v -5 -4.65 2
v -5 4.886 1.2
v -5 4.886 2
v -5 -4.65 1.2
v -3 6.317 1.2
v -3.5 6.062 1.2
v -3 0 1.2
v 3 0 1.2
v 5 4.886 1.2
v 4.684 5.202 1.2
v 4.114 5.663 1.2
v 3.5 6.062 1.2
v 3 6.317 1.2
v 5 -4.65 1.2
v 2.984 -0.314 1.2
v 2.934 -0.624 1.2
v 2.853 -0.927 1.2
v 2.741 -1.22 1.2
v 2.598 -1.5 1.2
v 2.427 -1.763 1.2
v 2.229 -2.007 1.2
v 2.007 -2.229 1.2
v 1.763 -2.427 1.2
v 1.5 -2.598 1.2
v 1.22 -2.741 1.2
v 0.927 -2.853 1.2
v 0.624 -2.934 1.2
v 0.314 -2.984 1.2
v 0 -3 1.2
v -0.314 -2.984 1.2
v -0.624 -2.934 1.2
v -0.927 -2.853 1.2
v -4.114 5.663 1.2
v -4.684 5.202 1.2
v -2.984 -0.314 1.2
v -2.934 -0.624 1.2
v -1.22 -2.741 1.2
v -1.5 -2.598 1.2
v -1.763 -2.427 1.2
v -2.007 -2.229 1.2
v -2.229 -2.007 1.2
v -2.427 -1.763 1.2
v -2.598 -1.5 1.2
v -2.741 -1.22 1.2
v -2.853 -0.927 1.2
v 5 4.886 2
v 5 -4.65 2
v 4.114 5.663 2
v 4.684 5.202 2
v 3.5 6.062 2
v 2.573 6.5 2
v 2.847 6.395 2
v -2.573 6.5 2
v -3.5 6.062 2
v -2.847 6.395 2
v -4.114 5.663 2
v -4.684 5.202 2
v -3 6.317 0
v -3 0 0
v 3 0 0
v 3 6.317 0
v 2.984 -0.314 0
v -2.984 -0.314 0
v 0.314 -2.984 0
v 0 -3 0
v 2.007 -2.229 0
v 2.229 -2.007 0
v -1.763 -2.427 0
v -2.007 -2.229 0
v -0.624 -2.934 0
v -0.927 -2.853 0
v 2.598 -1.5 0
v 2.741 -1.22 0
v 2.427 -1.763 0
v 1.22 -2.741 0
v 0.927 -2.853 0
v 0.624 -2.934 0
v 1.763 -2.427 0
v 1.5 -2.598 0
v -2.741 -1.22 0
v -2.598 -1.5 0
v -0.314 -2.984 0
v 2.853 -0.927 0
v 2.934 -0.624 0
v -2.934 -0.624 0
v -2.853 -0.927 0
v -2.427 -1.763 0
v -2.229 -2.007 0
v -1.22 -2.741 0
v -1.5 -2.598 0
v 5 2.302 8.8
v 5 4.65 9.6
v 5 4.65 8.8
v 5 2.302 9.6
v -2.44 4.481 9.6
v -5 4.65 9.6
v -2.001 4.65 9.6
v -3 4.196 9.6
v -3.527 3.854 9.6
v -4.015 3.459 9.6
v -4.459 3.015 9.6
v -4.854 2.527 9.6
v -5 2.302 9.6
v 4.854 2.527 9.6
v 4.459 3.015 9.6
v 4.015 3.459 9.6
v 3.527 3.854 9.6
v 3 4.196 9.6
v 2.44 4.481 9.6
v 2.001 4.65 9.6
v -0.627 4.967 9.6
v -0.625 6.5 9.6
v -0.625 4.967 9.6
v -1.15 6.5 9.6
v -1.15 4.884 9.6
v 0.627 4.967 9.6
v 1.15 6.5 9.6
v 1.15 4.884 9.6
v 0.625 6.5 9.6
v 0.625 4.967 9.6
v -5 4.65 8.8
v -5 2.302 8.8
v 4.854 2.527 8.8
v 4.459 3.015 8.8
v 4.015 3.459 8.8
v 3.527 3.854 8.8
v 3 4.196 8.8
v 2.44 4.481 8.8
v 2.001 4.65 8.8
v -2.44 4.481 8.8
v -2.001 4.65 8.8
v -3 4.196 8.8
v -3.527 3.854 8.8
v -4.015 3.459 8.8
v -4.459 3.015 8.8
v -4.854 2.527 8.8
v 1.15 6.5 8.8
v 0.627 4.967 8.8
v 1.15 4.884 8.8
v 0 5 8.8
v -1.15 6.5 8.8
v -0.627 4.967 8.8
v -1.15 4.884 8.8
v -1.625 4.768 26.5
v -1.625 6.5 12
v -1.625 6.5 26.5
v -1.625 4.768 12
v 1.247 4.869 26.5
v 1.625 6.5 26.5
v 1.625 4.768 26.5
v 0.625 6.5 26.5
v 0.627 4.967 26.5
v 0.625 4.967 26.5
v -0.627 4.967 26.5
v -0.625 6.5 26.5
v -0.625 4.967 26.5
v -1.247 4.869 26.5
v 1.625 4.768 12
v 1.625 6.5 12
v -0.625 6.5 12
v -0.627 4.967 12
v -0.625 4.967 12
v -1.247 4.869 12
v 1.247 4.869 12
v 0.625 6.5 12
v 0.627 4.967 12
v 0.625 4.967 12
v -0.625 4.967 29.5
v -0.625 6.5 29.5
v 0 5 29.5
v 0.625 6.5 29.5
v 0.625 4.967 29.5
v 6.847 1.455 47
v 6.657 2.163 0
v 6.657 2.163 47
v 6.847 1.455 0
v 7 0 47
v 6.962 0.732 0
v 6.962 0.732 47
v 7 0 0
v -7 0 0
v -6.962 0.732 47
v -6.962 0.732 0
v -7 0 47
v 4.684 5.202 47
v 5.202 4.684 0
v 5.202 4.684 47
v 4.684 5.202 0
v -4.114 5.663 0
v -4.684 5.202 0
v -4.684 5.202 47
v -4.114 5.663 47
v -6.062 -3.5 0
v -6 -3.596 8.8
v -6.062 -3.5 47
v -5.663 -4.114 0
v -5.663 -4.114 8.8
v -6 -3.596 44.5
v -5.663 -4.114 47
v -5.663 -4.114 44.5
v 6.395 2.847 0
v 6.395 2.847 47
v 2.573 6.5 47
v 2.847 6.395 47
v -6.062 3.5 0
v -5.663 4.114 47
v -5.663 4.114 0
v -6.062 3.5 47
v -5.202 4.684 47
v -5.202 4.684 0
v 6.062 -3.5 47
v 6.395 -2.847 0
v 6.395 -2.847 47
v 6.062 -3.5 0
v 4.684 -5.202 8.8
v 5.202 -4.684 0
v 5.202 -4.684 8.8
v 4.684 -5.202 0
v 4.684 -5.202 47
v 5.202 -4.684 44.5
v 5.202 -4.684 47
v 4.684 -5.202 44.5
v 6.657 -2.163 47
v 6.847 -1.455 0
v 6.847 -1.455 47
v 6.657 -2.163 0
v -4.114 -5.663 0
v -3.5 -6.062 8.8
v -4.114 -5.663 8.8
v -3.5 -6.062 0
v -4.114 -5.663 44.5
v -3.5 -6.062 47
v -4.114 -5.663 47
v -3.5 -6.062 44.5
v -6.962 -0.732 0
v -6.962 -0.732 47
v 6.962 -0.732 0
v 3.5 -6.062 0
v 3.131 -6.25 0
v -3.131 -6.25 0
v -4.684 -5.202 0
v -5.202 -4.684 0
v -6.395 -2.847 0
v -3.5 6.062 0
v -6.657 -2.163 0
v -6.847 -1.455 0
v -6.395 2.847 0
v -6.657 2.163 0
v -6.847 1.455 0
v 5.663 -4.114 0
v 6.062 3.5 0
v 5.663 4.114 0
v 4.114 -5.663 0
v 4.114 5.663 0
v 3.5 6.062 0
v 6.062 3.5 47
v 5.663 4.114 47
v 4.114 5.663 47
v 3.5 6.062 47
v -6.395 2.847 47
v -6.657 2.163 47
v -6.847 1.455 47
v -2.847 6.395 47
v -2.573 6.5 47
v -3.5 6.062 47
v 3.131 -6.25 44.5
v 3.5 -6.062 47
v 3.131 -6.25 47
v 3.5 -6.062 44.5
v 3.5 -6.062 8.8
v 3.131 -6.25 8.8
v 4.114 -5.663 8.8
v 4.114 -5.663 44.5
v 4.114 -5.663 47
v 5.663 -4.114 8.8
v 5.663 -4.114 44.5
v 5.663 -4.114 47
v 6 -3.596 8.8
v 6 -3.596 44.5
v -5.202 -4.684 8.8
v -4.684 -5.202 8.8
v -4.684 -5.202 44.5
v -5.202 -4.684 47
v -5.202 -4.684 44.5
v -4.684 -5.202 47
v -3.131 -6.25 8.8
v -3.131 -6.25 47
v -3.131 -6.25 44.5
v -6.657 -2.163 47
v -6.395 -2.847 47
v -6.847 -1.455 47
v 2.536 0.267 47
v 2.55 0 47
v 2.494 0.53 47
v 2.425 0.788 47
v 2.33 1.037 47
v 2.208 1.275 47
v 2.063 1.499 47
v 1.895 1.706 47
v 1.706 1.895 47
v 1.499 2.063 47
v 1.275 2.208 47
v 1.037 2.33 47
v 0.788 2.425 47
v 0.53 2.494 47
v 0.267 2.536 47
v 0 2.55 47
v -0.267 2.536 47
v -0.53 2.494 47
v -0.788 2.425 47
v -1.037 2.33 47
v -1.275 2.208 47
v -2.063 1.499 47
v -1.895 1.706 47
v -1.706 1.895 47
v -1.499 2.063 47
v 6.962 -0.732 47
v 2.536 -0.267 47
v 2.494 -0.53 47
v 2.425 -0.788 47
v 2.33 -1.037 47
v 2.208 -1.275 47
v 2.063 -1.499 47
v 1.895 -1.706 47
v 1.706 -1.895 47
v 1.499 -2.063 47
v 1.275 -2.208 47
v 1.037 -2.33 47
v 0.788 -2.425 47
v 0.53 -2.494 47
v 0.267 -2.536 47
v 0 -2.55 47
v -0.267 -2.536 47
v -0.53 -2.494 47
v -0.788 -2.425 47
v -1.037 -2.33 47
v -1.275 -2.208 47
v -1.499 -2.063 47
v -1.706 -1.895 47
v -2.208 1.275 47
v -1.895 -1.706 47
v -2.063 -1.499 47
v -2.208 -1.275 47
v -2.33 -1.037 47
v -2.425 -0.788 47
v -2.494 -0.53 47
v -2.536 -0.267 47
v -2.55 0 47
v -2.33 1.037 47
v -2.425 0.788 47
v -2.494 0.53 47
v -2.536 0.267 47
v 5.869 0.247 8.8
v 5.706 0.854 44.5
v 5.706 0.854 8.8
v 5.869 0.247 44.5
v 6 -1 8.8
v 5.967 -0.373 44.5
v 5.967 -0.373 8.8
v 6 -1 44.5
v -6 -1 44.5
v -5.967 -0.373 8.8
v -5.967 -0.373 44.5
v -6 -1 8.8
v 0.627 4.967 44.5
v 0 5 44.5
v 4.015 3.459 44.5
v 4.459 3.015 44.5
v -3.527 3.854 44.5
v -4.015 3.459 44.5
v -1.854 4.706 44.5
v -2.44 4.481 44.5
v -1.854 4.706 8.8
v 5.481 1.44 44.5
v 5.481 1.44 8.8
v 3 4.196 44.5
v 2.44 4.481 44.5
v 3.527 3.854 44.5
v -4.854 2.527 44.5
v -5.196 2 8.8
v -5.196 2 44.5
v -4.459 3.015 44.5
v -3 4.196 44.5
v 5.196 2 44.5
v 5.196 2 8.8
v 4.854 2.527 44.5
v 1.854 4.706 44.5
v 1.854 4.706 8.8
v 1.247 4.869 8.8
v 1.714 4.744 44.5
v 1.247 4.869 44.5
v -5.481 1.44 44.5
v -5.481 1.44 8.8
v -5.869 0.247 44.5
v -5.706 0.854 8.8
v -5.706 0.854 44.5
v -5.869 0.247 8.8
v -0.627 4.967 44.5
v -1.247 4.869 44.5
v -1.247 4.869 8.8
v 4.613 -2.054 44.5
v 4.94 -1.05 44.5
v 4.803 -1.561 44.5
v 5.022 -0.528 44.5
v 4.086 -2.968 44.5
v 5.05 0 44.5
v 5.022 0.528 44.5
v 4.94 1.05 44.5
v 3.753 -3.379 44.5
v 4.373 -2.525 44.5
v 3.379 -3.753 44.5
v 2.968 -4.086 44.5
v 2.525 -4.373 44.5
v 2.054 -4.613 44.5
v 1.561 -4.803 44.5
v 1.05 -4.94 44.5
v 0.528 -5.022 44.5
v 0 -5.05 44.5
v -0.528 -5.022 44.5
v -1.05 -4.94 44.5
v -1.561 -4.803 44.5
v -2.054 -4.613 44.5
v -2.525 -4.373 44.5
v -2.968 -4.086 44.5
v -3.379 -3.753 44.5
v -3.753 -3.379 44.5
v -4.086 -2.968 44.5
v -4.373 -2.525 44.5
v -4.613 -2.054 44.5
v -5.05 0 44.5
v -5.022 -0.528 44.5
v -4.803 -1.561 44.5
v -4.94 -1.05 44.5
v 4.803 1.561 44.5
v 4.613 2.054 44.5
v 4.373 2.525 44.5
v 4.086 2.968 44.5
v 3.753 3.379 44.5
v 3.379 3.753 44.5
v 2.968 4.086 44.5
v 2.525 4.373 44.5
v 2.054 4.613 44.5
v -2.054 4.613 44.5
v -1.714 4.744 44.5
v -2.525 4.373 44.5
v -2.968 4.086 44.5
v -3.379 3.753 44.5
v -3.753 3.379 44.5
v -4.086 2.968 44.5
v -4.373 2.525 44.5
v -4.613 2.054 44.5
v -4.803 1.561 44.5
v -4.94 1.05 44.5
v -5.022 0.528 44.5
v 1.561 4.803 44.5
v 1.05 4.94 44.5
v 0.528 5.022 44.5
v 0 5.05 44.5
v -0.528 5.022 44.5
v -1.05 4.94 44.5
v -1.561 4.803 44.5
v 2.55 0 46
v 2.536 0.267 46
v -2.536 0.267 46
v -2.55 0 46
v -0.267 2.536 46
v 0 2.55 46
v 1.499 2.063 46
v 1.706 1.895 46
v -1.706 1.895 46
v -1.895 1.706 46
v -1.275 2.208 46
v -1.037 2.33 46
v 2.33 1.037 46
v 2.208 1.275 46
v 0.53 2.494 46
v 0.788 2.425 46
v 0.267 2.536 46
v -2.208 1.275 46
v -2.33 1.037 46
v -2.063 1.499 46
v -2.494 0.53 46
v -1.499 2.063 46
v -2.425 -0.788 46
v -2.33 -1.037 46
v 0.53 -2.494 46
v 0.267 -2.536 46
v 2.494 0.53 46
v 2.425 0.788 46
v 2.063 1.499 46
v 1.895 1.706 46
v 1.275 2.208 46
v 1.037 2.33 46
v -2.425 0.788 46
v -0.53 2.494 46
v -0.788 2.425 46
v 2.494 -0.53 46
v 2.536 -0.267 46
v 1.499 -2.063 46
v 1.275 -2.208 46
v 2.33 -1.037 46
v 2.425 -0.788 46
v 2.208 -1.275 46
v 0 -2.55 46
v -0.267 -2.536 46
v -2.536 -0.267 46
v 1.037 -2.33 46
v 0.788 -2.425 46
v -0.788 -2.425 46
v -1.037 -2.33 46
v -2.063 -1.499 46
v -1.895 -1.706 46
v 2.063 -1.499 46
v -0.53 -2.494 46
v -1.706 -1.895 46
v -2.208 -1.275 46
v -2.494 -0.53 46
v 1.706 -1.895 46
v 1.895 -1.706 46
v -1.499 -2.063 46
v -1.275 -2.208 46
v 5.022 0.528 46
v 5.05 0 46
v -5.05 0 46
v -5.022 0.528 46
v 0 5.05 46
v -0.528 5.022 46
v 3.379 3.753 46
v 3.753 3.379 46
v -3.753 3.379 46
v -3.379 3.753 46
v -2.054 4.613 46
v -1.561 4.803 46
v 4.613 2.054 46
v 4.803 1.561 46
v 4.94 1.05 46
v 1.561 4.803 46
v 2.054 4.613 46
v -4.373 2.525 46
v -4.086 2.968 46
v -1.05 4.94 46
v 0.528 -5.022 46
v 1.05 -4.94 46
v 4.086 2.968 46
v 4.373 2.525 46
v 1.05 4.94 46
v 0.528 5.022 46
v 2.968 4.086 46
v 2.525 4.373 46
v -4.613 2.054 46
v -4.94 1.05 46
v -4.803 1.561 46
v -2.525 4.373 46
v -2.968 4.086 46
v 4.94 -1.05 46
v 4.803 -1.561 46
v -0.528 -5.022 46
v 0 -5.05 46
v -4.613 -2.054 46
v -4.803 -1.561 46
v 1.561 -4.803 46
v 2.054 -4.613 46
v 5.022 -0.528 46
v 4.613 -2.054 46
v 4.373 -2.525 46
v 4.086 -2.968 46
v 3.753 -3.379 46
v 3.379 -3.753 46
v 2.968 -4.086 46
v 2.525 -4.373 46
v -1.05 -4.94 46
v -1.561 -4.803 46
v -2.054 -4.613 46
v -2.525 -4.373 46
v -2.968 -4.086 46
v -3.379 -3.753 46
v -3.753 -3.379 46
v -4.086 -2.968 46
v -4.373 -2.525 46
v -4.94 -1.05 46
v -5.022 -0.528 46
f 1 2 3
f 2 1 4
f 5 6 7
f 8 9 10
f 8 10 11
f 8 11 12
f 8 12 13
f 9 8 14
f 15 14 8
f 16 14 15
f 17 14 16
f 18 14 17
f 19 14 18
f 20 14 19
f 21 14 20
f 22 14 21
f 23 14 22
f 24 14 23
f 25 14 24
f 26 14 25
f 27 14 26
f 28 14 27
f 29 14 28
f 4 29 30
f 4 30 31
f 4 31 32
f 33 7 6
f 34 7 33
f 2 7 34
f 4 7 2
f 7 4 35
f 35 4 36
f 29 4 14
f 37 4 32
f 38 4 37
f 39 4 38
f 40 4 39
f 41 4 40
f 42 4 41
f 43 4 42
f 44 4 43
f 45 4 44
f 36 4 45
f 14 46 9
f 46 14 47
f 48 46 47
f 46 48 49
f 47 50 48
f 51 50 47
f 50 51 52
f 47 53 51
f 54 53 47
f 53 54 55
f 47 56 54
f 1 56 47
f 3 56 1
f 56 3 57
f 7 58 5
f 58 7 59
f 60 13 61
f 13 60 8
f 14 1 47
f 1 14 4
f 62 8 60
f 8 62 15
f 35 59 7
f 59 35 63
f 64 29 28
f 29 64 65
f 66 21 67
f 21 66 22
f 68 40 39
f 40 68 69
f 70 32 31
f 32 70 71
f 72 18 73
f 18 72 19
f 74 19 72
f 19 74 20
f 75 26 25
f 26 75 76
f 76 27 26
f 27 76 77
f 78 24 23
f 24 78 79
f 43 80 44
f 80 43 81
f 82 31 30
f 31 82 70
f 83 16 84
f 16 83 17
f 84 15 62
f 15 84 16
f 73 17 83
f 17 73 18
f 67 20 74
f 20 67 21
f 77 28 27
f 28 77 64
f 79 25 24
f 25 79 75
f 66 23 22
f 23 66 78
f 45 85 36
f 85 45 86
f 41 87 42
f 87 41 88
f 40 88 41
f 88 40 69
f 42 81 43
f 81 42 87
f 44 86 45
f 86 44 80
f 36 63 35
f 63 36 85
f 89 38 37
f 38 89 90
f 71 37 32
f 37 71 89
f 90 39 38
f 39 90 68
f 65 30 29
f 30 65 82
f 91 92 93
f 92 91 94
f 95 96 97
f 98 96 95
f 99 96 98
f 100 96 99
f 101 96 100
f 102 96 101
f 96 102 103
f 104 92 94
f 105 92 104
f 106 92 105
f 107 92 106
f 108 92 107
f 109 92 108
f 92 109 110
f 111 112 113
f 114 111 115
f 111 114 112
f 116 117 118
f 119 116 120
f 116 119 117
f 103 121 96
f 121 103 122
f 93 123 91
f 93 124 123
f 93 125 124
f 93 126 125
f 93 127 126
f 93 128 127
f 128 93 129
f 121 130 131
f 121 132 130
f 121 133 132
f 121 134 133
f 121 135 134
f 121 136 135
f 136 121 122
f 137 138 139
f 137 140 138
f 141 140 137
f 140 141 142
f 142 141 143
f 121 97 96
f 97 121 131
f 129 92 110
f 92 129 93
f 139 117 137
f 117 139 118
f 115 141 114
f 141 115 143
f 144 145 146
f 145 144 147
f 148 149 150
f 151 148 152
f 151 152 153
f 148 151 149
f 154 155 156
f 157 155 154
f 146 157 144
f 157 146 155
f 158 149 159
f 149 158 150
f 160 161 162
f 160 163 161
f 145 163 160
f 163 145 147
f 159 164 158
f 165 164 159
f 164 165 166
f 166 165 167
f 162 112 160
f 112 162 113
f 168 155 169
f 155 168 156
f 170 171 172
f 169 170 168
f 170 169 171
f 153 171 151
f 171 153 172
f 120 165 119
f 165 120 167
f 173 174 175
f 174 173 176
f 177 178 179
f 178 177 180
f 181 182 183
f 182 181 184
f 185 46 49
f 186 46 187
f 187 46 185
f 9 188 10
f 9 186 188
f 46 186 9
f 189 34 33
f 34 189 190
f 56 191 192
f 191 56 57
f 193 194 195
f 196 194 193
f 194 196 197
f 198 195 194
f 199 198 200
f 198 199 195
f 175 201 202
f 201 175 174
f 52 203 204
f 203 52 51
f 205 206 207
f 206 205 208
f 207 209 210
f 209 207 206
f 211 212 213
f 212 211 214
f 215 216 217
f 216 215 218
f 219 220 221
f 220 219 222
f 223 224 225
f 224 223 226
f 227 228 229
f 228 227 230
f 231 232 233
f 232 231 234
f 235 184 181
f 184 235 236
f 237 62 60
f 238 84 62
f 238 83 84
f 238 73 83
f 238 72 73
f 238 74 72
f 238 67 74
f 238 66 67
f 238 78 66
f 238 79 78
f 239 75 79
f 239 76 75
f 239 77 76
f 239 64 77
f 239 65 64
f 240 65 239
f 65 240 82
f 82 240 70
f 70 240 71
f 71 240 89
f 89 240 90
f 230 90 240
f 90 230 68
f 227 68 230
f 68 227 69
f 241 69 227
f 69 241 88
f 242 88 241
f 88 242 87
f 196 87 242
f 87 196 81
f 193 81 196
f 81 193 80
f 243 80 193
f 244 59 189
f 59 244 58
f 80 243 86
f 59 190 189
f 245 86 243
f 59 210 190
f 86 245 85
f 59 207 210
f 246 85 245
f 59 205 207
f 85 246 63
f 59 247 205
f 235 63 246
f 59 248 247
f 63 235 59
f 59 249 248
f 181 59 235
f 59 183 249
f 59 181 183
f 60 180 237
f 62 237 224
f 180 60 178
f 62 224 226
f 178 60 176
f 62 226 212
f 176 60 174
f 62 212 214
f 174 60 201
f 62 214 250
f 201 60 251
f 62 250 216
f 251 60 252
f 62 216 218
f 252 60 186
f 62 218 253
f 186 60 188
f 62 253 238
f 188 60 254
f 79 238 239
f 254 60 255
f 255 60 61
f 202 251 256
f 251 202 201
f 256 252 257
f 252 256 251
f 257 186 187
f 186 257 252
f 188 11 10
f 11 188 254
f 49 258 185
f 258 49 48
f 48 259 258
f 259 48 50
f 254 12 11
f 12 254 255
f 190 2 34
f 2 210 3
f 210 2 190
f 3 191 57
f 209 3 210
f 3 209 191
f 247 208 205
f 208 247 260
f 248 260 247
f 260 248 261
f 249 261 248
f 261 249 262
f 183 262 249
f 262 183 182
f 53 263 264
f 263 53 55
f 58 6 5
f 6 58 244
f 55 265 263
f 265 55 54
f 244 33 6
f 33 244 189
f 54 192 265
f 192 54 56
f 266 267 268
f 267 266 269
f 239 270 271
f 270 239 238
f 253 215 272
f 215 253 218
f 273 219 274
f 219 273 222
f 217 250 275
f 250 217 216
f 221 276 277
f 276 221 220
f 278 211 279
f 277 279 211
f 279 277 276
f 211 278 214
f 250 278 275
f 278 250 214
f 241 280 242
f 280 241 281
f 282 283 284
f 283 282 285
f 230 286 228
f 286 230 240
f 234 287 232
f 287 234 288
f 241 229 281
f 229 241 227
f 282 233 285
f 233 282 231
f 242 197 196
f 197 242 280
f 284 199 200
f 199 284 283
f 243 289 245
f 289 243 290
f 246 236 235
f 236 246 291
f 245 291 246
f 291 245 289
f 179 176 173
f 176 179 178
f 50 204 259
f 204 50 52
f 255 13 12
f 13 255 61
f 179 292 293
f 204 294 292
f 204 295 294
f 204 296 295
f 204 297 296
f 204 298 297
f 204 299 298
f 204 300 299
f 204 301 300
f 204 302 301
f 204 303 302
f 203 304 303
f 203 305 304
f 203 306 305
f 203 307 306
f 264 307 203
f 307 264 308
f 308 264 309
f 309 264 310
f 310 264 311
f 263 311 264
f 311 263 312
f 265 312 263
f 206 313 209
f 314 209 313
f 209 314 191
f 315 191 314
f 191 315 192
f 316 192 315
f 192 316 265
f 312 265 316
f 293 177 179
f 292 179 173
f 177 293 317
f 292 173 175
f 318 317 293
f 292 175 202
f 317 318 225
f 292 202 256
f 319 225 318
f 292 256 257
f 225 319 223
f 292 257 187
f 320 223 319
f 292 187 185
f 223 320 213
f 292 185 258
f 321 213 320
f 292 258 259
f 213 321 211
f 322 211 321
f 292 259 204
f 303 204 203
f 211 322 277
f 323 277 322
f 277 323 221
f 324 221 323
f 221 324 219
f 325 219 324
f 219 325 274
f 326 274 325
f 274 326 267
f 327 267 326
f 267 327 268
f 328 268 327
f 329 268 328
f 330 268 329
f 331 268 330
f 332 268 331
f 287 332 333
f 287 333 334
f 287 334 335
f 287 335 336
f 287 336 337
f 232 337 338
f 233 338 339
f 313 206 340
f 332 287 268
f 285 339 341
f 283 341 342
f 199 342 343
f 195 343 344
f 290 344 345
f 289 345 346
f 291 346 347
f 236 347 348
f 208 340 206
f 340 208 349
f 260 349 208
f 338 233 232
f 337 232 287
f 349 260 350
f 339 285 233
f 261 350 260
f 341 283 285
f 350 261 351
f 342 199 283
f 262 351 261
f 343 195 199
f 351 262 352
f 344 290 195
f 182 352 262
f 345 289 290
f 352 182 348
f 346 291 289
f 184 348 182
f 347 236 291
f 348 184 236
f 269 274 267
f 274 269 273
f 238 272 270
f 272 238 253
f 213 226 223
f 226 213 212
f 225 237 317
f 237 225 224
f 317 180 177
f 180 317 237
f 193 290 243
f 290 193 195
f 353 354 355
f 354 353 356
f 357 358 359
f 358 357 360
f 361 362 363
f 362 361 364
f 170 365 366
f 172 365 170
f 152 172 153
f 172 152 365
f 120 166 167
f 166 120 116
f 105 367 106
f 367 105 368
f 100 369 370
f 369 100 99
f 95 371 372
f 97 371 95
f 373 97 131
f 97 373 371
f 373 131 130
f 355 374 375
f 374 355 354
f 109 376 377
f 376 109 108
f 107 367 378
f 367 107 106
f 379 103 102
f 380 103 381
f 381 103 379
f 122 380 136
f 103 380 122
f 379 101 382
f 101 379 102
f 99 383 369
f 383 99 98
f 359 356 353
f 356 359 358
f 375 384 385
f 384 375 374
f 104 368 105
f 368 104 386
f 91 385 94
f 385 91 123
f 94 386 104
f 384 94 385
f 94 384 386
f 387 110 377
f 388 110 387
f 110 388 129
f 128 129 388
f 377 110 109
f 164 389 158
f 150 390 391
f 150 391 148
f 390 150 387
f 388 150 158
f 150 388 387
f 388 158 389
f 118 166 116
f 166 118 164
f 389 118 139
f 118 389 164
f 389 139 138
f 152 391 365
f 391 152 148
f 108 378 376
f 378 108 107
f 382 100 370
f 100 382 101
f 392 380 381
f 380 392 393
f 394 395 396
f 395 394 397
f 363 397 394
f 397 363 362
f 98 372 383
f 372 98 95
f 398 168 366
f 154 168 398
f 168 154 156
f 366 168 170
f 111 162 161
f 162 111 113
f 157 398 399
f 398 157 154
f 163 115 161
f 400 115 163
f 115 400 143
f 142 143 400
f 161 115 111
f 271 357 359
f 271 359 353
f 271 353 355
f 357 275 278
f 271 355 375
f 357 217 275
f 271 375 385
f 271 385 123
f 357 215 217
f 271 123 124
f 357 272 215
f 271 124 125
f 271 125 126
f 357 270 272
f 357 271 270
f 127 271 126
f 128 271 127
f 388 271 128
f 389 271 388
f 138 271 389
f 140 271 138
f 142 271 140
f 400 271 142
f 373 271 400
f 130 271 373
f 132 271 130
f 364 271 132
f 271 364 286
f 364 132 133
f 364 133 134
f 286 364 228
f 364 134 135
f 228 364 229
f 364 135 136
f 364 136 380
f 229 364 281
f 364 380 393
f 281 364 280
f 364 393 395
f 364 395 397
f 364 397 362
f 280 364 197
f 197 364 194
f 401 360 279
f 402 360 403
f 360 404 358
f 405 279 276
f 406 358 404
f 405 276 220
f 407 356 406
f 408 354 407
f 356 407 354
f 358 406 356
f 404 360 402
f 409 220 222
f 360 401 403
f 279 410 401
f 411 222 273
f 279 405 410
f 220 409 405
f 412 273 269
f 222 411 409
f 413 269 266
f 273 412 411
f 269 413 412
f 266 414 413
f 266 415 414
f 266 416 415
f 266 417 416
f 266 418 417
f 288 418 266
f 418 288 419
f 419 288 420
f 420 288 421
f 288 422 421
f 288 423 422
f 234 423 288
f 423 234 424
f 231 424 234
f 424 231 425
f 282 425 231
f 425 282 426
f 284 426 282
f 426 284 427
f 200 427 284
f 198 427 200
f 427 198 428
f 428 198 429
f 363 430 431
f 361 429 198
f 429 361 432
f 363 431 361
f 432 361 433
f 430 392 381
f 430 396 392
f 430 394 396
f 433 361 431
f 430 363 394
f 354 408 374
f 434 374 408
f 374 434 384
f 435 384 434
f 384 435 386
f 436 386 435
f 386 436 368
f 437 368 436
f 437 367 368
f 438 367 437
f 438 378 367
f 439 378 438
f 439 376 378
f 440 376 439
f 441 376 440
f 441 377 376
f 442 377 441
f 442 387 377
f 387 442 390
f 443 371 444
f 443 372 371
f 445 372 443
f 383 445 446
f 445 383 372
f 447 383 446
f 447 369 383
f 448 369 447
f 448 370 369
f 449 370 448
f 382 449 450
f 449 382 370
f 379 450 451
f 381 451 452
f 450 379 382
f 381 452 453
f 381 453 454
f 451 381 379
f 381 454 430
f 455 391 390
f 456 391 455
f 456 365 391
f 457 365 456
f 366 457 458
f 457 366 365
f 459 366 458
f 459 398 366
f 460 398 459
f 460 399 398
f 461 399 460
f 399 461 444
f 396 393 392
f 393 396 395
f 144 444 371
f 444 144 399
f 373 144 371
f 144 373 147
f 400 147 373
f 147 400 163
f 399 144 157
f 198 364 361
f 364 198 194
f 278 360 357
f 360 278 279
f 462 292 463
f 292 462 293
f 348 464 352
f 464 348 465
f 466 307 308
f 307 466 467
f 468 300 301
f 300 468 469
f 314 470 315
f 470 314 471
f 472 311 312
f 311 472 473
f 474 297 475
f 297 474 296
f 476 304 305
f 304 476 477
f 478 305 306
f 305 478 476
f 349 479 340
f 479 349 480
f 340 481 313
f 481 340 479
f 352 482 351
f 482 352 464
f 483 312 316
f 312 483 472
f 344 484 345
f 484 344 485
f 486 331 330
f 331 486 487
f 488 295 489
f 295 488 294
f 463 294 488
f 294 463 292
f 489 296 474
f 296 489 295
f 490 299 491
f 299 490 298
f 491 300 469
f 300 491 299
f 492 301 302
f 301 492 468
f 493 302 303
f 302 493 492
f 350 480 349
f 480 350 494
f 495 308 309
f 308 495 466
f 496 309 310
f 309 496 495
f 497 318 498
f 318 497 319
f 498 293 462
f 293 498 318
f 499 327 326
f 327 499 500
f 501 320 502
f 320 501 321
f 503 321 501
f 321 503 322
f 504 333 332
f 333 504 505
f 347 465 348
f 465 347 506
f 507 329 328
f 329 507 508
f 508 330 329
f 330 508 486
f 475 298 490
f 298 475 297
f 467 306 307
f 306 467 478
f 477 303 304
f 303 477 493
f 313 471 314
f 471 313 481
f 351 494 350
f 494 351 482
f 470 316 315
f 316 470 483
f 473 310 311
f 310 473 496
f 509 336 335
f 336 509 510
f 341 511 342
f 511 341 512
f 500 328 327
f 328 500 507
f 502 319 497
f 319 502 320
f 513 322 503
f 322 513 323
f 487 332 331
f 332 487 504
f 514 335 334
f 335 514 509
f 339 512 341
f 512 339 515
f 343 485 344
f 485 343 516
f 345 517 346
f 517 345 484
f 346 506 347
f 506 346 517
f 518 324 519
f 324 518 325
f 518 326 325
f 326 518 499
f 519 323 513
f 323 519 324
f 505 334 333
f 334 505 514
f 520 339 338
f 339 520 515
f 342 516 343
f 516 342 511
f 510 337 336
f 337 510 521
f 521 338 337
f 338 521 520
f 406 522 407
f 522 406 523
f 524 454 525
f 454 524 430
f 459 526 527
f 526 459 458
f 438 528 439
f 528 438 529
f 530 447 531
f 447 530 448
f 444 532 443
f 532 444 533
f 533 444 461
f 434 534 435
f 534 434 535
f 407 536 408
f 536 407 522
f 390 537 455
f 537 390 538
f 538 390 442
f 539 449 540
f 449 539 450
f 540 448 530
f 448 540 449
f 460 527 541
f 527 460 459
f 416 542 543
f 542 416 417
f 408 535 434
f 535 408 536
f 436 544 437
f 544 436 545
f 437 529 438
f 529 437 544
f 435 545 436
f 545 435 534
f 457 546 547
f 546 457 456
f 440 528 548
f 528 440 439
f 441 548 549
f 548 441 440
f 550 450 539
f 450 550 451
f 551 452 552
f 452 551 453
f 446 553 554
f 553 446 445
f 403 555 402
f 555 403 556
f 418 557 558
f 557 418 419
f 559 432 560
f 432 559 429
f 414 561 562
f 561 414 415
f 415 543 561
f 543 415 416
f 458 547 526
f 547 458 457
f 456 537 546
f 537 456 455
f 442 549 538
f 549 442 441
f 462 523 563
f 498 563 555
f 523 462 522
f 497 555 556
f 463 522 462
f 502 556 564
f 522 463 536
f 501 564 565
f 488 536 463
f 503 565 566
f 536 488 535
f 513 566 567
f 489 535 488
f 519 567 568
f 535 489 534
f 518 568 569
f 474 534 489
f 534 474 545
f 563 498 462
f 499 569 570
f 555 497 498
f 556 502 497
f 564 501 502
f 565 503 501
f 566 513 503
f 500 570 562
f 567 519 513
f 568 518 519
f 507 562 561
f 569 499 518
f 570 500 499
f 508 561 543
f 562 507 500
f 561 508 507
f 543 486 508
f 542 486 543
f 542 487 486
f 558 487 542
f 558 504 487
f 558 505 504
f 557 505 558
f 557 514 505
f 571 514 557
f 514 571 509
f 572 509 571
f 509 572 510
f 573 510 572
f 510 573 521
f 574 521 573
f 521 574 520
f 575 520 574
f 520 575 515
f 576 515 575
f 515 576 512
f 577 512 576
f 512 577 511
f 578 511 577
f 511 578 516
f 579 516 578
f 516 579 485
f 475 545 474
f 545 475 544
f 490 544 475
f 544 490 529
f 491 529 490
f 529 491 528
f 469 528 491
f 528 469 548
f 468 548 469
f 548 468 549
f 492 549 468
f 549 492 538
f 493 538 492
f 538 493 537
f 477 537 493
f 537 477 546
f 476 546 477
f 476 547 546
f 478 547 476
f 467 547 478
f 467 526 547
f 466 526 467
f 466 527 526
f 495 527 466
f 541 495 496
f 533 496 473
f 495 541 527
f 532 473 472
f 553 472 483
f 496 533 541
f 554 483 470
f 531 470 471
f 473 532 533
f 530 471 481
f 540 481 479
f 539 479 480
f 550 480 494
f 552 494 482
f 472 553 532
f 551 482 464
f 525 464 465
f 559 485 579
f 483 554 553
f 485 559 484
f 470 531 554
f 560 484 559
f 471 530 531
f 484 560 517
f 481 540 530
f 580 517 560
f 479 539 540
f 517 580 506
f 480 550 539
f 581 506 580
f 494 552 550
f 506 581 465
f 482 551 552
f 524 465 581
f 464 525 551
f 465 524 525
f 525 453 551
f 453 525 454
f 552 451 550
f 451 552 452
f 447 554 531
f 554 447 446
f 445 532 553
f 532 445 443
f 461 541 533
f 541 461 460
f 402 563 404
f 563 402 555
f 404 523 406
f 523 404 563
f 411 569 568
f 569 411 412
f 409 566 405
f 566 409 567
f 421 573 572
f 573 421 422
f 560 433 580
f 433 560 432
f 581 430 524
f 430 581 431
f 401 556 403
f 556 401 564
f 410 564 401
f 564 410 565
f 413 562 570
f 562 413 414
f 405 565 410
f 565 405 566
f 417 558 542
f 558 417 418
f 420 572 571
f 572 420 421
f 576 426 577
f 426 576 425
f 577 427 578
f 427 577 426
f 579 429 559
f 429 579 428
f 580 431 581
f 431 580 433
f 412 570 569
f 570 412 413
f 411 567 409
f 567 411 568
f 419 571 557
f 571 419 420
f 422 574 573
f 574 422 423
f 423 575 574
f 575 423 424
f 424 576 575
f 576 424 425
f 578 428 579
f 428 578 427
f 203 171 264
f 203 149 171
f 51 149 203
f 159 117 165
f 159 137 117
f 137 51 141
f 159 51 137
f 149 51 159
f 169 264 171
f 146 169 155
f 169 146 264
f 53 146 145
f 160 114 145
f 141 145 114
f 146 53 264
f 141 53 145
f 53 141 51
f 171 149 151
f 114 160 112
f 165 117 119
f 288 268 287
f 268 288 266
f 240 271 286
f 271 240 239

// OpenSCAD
include <BOSL/constants.scad>
use <BOSL/shapes.scad>
use <BOSL/transforms.scad>

compressedSpring = 5.5;

//positive terminal minimum 1.0mm (included in height) -- max 5.5mm
//negative terminal minimum diameter 7mm
hAA=49-2;
dAA=14;

//positive terminal minimum XXXmm (included in height) -- max XX
//negative terminal minimum diamter XXmm
hN=30.2+compressedSpring;
dN=12;

//Metal Battery Spring Terminals
//additions are for "wiggle room"
slotWidthX = 9.7 + 0.3;
slotDepthY=9.0 + 0.3;
slotThicknessZ=0.40*2; // metal tab only -- multiplier gives wiggle room
tabWidthX=2.3;
tabDepthY=6.0;
tabOffset=0; // in degrees 

//Plastic Reed Switch
reedL = 14.5;
reedW = 3.25;
reedH = 3.14;

topThickness = 2.5;
shiftForward=1;


//General variables
$fn=60; //circle smoothness
overlap = 1.00; // overlap ensures that subtractions go beyond the edges

difference() {

  //Overall shape (of a AA battery)
  AA();

  //Battery Cutout
  forward(shiftForward) up(hAA-hN-topThickness) #N();
  forward(shiftForward) up(hAA-hN-topThickness) forward(dN/2) Nopening();

  //Positive Pole (Chicago Screw)
  up(hAA-topThickness) color("green") cyl(d=5.1, h=4, align=V_UP); 
  up(hAA-topThickness) color("lime") cyl(d=10.1, h=1.5, align=V_UP);

  //spring insert for negative pole of battery
  up(hAA-hN-topThickness) zrot(180-tabOffset) slot();
  
  //Bottom tab (negative)
  up(2) zrot(tabOffset) xrot(180) slot();  
  up(2) zrot(tabOffset) xrot(180) slotopening();  
  
  //Flatten holder
  back((dAA/2)+0.5) color("gray") cuboid([dAA, 2, hAA], align=V_UP); //flatten back
  forward((dAA/2)+0.25) color("gray") cuboid([dAA, 2, hAA], align=V_UP); //flatten front
  
  
  //Reed switch
  up(12) back((dAA/2)-(reedH/2)-0)  #reed();
  
}
  
 //preview just the slot
 //up(hAA+10)   slot();


//----------------------------------------------------------------------------------------

module AA() { color("orange") cyl(d=dAA, h=hAA, align=V_UP); }
module N() { color("gold") cyl(d=dN, h=hN, align=V_UP); }
module Nopening() { color("khaki") cuboid([dN, dN , hN], align=V_UP); }

//----------------------------------------------------------------------------------------

module reed() { 
  color("slategray") cuboid([reedW, reedH, reedL], align=V_UP);
  down(3) color("lightgray") cuboid([1.25, reedH, reedL+3+3], align=V_UP);
}

//----------------------------------------------------------------------------------------

module slot() { 
  color("magenta") cuboid([slotWidthX, slotDepthY, slotThicknessZ], align=V_UP);
  color("deeppink") cyl(d=6, h=slotThicknessZ+1.6, align=V_UP);
  forward((slotDepthY/2)+(tabDepthY/2)) color("hotpink") cuboid([tabWidthX, tabDepthY, slotThicknessZ], align=V_UP);
  //slotopening();
}

module slotopening() {
  forward(dAA/2) color("pink") cuboid([slotWidthX, dAA, slotThicknessZ], align=V_UP);
  forward(dAA/2) color("lightpink") cuboid([6, dAA, slotThicknessZ+1.6], align=V_UP);
}

//----------------------------------------------------------------------------------------
